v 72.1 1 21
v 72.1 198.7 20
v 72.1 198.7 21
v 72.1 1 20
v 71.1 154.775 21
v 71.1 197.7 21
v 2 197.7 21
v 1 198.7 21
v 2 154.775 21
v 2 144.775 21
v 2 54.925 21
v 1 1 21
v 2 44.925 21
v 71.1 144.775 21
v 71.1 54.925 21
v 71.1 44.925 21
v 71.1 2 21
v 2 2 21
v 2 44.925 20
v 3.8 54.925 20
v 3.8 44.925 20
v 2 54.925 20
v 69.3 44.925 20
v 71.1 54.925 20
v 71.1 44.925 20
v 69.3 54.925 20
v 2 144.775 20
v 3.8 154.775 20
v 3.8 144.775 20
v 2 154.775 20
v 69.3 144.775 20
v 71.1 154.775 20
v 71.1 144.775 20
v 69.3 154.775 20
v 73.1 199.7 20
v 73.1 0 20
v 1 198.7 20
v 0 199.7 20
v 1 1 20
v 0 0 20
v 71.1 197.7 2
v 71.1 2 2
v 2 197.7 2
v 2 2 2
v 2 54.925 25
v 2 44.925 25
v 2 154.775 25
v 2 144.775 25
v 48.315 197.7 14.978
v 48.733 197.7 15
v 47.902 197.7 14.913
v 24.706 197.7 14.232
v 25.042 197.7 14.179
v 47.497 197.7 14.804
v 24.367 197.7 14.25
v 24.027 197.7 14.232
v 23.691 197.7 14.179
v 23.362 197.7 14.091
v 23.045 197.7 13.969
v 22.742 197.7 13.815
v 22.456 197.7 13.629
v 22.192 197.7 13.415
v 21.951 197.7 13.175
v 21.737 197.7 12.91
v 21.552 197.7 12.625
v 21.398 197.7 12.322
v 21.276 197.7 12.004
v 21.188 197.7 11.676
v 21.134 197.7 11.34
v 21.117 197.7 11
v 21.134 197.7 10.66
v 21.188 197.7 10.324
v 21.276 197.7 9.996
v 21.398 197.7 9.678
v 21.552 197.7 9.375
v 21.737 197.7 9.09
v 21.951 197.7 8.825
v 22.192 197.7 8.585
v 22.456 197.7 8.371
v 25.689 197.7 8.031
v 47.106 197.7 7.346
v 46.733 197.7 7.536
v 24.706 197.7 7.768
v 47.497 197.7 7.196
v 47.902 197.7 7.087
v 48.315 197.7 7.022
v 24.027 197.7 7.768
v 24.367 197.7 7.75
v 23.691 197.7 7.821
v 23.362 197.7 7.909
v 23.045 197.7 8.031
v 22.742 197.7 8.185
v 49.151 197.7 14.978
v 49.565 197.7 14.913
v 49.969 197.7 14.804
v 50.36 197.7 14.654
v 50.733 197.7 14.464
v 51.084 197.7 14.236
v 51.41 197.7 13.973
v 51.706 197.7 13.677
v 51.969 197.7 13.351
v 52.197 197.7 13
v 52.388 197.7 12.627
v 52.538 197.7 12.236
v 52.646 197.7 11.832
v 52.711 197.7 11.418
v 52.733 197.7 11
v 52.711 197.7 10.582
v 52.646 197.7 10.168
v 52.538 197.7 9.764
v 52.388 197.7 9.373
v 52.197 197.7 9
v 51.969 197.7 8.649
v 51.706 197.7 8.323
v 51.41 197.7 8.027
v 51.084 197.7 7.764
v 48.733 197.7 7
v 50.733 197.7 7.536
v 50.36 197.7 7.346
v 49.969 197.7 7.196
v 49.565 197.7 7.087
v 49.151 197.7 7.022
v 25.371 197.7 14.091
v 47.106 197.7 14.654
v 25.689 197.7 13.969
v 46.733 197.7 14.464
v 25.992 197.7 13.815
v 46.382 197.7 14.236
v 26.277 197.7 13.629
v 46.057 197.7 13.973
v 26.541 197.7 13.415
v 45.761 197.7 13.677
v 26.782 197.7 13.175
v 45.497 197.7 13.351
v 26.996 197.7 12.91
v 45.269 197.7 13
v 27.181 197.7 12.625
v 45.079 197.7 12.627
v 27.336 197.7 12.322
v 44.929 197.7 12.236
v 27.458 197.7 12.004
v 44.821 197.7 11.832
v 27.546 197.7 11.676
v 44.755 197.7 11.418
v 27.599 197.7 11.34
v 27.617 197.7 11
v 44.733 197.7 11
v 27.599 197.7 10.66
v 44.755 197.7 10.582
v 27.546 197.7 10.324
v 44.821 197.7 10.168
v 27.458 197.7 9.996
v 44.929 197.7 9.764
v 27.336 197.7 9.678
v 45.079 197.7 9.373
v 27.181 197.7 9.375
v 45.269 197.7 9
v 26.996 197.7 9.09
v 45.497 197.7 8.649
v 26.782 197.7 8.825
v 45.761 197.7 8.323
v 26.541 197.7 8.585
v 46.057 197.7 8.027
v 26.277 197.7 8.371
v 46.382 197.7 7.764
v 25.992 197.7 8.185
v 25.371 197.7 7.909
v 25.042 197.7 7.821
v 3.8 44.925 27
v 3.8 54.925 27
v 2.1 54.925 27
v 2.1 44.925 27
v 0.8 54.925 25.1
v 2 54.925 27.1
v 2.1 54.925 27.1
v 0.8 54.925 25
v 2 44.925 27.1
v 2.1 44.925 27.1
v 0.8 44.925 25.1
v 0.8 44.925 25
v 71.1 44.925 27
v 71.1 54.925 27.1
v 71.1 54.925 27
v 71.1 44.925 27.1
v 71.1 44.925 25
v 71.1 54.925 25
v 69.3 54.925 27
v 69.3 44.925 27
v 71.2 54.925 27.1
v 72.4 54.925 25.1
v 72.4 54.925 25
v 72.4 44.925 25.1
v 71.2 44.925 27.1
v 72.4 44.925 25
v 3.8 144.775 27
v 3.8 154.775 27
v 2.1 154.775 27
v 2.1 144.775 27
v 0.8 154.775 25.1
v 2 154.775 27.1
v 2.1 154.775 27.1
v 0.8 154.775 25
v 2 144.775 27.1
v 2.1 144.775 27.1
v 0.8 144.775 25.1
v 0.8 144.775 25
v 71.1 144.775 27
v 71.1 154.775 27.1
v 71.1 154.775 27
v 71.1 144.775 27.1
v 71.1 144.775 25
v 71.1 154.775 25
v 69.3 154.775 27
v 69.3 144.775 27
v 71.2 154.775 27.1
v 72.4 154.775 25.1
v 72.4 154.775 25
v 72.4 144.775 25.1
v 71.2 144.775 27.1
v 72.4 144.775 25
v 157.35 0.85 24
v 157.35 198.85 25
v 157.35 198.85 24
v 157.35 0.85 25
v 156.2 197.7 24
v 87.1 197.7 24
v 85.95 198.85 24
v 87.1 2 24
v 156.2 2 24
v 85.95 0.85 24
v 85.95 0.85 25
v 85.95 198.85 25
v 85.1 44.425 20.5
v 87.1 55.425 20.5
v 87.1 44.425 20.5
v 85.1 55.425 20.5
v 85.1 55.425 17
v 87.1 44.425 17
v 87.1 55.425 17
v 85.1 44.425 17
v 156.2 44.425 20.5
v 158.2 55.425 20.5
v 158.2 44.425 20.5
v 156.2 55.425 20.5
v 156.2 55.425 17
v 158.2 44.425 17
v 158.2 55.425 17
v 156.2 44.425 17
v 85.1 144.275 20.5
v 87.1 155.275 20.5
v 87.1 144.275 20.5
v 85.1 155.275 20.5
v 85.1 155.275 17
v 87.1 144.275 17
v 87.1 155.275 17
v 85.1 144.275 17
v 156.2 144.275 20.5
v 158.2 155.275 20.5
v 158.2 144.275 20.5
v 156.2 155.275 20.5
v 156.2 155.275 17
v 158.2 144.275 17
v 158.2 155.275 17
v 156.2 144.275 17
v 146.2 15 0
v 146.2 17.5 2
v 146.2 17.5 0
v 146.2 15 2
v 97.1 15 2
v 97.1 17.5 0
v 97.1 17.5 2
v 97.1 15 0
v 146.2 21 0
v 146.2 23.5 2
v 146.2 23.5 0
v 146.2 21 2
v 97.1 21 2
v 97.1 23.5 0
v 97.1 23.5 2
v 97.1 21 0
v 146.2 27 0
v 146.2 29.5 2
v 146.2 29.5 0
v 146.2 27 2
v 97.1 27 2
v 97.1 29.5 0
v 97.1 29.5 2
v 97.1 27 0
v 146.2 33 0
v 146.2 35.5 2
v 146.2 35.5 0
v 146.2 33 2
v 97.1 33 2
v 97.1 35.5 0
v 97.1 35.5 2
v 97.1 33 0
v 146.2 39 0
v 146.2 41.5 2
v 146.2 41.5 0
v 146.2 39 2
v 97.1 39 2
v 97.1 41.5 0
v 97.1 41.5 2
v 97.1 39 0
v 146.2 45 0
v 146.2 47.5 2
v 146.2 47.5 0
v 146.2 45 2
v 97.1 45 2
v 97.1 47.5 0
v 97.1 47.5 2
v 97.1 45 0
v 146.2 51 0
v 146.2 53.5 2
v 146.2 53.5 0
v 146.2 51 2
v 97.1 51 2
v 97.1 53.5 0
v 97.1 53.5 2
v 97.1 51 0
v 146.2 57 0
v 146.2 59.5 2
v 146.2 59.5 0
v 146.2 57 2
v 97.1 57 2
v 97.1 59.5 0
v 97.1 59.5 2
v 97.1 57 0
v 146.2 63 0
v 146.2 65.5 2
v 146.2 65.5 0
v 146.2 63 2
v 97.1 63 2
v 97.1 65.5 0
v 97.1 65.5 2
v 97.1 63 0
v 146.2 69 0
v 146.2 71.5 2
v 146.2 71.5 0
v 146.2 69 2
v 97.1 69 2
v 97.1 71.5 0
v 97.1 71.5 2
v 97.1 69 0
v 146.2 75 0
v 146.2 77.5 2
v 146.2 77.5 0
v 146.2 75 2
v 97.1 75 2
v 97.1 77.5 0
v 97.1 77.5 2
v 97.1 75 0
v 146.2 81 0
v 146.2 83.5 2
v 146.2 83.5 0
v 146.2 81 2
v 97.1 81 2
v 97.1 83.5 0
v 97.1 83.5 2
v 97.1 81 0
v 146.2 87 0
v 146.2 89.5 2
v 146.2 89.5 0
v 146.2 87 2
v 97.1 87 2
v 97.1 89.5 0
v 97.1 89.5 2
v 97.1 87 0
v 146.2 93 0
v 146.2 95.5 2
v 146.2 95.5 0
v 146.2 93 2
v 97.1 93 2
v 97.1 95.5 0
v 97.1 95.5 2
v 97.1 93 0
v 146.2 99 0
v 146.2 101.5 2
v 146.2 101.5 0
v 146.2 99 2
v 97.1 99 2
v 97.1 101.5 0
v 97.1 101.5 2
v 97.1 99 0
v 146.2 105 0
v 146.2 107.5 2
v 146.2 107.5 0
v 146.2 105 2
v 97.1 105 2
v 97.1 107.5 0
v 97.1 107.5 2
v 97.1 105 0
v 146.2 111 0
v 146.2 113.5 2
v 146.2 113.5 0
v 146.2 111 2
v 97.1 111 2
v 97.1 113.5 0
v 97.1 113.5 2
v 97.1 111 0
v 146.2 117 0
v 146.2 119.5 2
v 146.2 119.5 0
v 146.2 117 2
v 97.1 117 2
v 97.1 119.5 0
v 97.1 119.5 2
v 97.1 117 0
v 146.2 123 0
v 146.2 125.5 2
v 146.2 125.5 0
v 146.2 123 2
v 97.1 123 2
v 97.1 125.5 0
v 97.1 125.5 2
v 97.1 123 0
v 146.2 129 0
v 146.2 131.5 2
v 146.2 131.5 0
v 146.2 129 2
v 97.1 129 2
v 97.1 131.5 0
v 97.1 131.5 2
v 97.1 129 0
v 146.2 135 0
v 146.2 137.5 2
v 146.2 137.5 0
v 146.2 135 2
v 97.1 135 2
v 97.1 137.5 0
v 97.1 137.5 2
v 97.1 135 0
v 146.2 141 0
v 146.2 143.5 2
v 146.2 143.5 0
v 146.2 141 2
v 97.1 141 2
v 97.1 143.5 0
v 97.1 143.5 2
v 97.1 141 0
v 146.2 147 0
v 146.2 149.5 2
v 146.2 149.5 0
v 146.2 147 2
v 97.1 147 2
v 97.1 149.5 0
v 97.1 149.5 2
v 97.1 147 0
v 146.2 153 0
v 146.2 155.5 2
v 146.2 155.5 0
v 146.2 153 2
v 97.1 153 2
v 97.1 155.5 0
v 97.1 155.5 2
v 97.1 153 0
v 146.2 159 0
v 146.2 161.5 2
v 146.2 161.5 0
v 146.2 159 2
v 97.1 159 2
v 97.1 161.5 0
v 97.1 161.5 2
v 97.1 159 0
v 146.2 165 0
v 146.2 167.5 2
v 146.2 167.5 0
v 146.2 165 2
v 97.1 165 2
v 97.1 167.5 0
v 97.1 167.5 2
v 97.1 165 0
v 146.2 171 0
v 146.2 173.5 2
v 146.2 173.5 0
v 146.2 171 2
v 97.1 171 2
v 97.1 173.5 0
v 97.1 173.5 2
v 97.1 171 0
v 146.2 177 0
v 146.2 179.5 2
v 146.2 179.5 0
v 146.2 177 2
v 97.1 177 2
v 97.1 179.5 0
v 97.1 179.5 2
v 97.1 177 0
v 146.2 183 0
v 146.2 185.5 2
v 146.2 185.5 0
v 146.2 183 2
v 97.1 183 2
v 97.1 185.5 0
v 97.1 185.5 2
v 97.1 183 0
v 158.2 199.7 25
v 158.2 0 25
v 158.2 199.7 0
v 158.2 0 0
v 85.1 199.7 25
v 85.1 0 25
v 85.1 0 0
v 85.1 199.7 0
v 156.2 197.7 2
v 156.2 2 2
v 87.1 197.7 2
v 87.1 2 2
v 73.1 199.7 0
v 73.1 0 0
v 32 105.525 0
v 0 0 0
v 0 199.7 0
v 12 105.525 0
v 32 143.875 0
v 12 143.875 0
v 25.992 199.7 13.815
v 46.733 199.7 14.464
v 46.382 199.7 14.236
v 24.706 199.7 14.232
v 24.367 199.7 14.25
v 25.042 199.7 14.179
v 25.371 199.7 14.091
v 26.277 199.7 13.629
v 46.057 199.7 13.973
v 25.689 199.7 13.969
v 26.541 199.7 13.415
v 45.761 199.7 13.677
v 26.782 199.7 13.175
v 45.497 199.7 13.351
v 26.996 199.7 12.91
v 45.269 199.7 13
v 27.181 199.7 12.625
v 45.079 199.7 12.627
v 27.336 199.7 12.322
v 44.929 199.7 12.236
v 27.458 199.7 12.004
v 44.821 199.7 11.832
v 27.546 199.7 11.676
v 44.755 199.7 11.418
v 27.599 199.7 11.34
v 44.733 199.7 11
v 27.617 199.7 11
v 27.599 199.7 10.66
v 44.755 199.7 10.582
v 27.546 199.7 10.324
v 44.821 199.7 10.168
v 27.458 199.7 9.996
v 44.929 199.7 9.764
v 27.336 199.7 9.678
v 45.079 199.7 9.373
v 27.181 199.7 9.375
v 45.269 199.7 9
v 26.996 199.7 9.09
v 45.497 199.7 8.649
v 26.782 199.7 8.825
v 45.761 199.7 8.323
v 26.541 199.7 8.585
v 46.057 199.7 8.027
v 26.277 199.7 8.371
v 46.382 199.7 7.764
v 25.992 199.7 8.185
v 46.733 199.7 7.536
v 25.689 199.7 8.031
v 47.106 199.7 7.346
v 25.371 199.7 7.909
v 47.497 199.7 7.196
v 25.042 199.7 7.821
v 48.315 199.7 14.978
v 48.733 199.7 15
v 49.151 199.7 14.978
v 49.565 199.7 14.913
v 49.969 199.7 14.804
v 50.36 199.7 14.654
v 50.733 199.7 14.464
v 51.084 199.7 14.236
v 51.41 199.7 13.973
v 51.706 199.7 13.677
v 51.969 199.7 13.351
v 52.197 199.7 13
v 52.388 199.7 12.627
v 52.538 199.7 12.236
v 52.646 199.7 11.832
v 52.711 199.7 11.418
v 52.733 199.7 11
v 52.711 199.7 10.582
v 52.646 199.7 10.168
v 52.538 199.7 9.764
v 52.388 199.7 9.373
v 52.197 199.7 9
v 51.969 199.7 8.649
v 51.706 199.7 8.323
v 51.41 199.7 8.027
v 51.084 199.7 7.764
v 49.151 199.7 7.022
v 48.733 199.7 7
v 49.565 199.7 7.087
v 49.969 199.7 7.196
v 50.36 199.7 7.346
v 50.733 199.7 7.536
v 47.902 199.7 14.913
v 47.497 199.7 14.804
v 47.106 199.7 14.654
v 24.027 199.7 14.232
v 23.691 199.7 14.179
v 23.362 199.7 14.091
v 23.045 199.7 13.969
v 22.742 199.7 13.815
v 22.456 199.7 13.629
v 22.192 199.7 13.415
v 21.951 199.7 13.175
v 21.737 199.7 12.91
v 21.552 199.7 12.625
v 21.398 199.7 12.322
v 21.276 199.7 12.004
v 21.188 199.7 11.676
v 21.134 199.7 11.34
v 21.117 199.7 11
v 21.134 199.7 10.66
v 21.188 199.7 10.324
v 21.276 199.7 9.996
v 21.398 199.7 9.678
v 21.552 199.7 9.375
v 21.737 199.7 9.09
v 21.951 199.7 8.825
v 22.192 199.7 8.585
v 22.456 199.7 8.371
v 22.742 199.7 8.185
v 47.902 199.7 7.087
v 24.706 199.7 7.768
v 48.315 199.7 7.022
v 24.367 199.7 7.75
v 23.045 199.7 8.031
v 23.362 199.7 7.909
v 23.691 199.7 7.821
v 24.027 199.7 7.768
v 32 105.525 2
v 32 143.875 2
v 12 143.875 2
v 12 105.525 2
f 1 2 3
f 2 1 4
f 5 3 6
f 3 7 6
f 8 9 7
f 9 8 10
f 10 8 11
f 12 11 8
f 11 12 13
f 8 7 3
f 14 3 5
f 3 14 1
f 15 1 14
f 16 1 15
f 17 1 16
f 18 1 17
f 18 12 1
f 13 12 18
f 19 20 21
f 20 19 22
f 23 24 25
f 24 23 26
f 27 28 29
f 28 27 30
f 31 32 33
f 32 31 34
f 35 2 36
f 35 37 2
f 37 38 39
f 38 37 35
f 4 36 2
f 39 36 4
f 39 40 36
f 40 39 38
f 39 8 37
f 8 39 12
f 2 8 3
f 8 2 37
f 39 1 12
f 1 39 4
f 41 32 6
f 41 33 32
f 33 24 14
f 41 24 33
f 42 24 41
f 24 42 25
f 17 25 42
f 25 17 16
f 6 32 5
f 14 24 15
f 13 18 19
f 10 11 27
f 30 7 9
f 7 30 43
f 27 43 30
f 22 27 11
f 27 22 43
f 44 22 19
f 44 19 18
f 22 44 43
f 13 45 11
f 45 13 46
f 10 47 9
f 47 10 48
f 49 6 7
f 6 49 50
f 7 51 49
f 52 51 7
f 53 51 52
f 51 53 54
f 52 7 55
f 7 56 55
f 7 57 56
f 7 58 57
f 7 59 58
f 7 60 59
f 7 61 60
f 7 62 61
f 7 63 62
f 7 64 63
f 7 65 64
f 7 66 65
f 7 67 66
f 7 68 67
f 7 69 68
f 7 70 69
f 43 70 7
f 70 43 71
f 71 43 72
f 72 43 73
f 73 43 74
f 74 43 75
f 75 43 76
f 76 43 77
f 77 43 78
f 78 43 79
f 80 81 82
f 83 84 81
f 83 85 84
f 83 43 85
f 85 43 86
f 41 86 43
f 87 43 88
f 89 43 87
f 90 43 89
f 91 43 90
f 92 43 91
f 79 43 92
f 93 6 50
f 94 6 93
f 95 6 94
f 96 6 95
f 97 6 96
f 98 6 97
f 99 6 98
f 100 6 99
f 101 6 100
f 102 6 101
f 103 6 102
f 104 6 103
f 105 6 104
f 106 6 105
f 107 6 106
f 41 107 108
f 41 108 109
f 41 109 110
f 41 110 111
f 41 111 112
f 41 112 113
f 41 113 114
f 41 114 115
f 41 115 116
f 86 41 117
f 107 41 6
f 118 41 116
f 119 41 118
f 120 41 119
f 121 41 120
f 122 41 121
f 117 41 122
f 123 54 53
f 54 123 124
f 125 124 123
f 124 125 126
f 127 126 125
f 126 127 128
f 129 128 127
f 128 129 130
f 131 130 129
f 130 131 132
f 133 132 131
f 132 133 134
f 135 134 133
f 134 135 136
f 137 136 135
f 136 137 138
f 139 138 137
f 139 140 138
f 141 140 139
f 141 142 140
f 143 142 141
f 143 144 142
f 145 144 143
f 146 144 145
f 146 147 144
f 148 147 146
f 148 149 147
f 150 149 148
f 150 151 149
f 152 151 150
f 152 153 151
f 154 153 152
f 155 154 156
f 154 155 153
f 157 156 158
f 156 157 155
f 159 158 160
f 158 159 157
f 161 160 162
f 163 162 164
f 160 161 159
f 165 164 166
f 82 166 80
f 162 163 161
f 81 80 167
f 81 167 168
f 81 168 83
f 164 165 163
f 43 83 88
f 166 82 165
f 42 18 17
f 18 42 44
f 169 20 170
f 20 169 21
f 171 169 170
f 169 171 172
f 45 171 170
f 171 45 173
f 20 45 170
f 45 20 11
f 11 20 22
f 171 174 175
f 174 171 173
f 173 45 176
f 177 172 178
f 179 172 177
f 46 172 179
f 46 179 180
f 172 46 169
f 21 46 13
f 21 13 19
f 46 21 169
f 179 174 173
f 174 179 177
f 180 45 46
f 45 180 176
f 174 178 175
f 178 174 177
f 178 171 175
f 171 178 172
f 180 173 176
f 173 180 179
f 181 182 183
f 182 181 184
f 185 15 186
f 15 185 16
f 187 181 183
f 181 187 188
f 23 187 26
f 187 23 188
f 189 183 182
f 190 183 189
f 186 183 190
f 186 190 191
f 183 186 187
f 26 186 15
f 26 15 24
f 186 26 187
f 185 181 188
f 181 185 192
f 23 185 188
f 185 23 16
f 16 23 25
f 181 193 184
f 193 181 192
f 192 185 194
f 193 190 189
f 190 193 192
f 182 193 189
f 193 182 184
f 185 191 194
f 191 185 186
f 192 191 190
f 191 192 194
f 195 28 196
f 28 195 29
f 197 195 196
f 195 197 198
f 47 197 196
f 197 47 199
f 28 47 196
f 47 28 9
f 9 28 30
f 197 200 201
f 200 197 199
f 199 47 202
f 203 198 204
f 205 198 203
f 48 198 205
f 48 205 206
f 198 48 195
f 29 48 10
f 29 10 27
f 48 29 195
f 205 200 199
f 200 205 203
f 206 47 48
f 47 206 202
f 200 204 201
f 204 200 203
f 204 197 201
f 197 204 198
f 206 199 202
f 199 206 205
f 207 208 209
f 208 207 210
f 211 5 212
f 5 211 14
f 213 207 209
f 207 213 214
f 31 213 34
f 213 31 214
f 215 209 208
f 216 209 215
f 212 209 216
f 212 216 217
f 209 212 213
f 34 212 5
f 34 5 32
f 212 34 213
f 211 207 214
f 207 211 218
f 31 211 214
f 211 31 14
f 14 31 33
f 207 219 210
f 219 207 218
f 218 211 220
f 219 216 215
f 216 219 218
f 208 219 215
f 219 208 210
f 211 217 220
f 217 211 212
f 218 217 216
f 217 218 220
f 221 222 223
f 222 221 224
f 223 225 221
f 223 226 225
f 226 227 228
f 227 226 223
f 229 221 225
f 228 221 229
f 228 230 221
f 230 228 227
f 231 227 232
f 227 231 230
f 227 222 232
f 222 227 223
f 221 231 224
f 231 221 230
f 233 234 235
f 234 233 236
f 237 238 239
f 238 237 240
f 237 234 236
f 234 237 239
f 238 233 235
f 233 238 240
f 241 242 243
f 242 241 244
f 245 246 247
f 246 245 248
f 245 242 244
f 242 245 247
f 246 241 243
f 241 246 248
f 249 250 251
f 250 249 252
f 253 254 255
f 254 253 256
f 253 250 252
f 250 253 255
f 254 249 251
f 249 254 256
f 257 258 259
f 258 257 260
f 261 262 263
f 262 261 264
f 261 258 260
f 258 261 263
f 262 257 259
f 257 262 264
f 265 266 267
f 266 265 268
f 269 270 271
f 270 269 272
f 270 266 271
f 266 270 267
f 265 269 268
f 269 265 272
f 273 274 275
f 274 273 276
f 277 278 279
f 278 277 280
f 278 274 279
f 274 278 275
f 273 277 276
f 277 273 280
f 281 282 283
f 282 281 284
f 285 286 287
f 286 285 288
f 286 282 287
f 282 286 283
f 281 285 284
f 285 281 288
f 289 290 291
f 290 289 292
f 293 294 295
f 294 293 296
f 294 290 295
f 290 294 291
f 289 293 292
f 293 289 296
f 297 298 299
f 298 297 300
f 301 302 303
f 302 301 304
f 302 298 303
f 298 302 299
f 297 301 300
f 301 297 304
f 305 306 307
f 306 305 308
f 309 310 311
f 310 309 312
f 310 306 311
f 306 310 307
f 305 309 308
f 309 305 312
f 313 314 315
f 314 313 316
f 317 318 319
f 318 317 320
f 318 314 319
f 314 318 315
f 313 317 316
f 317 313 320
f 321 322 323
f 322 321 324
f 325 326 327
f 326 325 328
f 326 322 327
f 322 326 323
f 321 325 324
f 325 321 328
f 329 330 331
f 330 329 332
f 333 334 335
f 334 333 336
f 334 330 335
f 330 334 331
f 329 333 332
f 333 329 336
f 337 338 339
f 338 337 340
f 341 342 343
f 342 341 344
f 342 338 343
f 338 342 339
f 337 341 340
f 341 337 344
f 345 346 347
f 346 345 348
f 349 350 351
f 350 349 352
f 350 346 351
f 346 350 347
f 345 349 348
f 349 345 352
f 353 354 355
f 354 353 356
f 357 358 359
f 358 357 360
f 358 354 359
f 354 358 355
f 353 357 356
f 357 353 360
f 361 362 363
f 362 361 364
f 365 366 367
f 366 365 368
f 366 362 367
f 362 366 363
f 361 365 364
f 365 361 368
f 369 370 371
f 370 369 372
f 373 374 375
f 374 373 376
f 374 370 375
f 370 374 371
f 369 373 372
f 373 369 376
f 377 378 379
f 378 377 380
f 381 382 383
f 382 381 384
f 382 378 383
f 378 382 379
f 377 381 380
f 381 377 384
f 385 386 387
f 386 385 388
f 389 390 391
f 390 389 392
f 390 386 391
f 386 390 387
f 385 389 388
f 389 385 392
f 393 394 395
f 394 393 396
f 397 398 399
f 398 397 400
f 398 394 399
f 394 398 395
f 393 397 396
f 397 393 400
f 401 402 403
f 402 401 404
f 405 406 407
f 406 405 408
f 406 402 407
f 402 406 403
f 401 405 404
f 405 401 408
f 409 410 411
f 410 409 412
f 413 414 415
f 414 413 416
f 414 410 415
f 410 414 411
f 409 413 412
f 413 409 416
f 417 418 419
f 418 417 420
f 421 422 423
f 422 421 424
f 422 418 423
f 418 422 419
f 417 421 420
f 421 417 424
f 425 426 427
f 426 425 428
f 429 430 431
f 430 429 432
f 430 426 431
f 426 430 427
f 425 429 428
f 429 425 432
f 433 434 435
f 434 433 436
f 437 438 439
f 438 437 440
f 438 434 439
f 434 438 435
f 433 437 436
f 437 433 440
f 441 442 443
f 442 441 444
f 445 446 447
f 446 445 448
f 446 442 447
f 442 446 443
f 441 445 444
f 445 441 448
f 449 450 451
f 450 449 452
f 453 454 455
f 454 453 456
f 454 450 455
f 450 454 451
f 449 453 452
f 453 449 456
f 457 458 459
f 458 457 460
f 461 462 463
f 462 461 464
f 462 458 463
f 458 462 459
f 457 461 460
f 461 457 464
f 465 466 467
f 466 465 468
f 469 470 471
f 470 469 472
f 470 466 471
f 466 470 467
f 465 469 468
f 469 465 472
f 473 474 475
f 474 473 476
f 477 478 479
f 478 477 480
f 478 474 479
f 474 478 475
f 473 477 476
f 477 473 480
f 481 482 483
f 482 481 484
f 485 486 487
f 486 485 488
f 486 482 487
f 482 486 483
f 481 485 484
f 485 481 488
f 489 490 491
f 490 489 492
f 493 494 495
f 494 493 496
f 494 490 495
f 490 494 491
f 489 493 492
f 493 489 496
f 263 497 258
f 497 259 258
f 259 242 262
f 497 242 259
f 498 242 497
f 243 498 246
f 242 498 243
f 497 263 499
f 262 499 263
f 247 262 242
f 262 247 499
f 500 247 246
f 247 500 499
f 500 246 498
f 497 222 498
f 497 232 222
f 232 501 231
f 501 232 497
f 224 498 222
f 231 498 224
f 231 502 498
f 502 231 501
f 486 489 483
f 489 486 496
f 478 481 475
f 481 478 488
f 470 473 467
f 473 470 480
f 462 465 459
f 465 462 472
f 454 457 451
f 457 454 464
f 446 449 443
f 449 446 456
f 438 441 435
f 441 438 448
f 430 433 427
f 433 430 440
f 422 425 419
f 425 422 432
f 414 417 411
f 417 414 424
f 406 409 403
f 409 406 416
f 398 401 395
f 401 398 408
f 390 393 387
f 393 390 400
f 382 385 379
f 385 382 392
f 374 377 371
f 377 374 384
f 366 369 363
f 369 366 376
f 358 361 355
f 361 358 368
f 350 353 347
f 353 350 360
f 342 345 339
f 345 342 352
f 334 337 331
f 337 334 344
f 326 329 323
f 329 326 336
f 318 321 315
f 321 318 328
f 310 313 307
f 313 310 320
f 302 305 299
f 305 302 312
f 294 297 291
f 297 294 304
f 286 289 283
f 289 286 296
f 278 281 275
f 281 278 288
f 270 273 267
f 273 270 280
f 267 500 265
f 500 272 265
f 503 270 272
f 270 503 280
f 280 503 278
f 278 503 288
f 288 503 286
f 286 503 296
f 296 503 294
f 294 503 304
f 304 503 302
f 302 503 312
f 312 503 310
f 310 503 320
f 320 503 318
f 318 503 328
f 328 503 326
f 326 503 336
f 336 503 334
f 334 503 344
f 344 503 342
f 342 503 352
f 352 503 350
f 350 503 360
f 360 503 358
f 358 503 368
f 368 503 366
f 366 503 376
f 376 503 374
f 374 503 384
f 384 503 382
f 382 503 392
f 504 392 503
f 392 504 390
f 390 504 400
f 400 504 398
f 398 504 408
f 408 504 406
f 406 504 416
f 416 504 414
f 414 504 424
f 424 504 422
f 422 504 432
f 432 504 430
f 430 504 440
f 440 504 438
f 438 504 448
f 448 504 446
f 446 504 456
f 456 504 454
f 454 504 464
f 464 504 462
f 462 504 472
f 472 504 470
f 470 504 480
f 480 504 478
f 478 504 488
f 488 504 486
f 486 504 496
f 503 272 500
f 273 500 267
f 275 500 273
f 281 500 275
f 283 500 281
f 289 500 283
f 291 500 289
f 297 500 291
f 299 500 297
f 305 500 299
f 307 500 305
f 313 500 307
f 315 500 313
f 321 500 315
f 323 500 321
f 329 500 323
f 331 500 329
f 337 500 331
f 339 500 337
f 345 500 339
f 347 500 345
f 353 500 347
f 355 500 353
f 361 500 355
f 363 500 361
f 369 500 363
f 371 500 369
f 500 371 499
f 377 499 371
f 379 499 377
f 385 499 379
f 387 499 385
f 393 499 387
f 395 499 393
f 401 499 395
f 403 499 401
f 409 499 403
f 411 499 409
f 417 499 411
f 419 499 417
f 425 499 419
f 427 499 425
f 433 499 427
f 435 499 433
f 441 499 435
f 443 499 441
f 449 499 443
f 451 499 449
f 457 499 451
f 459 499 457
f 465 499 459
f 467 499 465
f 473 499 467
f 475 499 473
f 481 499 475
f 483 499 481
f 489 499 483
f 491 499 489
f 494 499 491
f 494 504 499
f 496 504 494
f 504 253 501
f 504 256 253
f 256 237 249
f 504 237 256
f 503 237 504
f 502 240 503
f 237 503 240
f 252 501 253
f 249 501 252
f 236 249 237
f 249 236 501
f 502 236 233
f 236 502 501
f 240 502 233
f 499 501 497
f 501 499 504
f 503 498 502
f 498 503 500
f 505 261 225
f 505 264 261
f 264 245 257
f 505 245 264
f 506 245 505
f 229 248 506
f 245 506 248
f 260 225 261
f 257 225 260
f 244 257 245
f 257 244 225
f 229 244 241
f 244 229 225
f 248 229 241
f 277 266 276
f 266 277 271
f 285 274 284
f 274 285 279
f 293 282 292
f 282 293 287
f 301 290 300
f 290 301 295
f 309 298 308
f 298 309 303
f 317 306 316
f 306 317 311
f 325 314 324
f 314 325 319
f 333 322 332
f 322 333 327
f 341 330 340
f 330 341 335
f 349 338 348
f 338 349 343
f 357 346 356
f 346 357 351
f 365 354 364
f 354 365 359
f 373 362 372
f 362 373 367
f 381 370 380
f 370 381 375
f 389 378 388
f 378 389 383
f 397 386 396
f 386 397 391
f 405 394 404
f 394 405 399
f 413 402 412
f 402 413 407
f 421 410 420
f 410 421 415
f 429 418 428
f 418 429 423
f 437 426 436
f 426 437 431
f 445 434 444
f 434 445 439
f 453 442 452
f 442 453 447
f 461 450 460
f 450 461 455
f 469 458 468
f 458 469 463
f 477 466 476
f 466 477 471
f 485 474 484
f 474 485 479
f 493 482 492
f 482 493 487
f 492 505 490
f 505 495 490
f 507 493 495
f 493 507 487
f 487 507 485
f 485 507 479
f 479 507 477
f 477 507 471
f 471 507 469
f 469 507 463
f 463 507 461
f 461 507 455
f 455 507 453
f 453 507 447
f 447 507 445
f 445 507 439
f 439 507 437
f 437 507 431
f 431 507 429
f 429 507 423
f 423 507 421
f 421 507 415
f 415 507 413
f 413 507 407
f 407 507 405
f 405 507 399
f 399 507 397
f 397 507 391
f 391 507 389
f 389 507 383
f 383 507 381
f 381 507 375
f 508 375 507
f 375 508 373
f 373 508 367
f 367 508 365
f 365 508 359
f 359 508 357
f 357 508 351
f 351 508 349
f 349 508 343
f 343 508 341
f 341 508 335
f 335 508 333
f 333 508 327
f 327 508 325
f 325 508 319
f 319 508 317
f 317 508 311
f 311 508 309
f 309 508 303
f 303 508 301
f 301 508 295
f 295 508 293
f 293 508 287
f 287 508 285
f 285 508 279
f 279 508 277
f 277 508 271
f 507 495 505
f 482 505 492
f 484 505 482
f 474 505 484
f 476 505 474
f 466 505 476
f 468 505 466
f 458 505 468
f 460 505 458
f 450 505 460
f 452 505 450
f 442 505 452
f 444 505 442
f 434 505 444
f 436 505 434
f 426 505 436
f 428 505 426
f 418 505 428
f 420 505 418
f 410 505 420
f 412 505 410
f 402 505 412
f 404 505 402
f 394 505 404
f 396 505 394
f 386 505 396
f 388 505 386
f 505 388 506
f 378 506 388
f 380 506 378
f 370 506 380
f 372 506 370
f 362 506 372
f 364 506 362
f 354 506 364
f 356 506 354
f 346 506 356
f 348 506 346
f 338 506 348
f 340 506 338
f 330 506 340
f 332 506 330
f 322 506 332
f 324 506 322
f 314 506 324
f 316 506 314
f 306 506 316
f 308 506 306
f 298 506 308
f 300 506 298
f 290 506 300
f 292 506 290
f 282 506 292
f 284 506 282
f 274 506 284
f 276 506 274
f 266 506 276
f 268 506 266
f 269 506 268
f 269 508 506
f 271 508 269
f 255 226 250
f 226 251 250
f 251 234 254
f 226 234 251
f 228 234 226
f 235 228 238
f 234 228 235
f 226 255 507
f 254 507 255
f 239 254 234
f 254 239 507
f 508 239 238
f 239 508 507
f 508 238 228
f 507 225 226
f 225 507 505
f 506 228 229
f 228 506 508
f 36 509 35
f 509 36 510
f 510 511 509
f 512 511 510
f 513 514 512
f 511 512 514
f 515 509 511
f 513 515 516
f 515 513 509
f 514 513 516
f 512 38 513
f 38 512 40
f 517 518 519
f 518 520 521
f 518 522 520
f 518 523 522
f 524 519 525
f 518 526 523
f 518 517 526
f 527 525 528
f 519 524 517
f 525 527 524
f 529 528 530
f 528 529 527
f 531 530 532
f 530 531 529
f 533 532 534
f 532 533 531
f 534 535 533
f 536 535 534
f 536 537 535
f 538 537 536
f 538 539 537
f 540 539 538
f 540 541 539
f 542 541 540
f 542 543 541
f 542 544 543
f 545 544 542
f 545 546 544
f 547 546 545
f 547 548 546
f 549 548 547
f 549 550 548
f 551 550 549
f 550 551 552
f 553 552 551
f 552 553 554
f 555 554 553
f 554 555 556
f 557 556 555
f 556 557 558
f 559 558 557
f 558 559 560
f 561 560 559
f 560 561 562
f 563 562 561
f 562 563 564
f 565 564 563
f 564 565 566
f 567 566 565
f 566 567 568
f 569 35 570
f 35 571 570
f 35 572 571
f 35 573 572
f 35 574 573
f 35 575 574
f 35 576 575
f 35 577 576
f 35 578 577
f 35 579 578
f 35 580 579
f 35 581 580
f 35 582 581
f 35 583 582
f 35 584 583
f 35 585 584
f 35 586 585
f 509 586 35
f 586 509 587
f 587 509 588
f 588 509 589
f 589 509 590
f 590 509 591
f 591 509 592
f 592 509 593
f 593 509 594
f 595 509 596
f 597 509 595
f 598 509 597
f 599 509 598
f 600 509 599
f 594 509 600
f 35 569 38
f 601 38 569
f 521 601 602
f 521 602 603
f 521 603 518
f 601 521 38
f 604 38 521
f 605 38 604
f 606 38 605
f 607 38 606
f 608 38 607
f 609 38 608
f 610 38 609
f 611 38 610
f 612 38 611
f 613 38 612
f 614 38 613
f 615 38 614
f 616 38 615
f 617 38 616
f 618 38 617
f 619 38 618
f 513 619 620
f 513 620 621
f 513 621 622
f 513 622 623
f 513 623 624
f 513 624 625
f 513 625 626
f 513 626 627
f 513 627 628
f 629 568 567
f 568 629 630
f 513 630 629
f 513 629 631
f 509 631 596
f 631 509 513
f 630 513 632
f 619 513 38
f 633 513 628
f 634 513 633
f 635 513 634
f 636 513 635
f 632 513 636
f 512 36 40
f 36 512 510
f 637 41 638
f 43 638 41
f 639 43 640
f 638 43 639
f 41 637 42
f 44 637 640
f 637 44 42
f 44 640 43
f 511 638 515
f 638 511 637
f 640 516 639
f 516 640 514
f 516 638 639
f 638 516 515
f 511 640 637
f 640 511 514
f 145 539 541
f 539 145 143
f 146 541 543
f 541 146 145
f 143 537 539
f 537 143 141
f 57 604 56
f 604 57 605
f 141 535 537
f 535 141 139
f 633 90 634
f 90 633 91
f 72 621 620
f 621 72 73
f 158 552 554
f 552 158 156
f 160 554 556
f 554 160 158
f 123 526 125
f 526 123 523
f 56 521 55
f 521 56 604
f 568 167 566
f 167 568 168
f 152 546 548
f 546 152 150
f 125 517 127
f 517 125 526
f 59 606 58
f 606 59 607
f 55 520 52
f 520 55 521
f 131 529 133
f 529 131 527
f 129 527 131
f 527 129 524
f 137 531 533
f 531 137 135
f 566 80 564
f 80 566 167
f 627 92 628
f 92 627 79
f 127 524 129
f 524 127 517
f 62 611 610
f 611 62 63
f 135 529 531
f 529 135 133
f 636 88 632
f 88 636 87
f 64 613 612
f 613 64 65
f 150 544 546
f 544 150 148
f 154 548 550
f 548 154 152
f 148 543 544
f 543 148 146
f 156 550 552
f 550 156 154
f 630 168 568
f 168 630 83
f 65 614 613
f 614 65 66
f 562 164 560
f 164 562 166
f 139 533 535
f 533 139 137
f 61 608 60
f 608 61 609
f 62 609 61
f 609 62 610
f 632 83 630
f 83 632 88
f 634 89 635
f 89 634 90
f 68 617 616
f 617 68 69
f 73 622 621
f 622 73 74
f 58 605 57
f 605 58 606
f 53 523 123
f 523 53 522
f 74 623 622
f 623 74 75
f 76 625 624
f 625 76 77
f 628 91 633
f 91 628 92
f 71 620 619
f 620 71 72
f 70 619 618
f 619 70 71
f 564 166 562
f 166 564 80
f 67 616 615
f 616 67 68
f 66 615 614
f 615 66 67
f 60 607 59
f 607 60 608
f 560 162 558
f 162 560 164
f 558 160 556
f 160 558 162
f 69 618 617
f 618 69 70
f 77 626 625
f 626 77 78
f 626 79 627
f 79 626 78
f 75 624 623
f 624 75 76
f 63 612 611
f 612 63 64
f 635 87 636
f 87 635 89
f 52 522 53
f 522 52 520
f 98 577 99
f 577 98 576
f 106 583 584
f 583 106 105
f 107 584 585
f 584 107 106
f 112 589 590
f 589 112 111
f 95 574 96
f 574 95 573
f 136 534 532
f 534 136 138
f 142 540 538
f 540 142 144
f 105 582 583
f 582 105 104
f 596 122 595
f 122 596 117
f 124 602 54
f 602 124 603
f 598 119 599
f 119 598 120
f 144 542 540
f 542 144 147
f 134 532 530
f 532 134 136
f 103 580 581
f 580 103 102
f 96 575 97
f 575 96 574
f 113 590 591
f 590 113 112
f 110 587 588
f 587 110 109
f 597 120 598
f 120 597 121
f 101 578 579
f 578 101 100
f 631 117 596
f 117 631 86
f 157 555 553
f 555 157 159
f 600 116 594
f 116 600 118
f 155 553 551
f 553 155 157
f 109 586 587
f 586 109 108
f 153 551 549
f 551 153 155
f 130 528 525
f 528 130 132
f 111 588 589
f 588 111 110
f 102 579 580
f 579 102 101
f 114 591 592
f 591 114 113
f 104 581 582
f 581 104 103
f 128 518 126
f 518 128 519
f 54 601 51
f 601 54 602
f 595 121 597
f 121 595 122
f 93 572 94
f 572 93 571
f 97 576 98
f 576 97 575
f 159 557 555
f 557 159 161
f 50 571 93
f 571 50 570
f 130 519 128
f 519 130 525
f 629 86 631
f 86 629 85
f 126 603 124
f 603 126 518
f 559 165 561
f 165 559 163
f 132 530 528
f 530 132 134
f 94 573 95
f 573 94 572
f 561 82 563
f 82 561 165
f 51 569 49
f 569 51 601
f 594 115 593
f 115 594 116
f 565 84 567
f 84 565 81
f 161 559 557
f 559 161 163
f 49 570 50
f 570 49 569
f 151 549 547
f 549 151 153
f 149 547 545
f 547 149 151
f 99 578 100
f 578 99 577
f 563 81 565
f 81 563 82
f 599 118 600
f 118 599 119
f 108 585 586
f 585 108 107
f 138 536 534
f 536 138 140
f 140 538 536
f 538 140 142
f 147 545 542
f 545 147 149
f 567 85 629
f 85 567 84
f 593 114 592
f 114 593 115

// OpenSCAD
/*
  Handheld Drone Detector Enclosure - Extended (+2")
  Hardware: ESP32S2, Heltec (w/ Screen), BW16, USB Power Bank
  Mechanism: 4x Cantilever Snap Joints
*/

$fn = 60; // Smoothness for circular cutouts

// --- Printer Tolerances & Settings ---
wall = 2.0;       // Standard 2mm shell thickness
tol = 0.15;       // Clearance tolerance for the alignment lip

// --- Snap Joint Parameters ---
snap_w = 10.0;      // Width of the snap arm
snap_t = 1.8;       // Thickness of the cantilever arm
snap_l = 7.0;       // Length of the snap extending past the rim
snap_h = 1.2;       // Hook protrusion depth

// --- Internal Dimensions (mm) ---
// Battery: 136.9 x 67.1 x 15 (Updated to exact 15mm thickness)
bat_w = 67.1;
bat_h = 136.9;
bat_d = 15.0;

usb_clearance = 58.8;       // 8mm original + 50.8mm (2 inches) for cable routing
int_w = bat_w + 2;          // 69.1mm wide internal cavity
int_h = bat_h + usb_clearance; // 195.7mm high total cavity
front_depth = 18.0;         // Depth for boards (Accounts for BW16 header pins)

// back_depth is bat_d + 8 to raise bottom walls & clasp receivers 
back_depth = bat_d + 8;     

// --- External Dimensions ---
ext_w = int_w + (wall * 2);
ext_h = int_h + (wall * 2);
ext_d = front_depth + back_depth + (wall * 2);

// --- Component Coordinates ---
// Screen rotated vertically, widened by ~6.35mm (0.25"), plus an extra 2mm in height
screen_w = 20;     // Original short edge
screen_h = 38.35;  // Original long edge (30) + 6.35mm (0.25") + 2.0mm

// Anchored from the top down, left justified with a buffer for the board
screen_x = wall + 10; // Left-justified 10mm from internal wall
screen_y = ext_h - 75; 

sma_dia = 6.5;        // ESP32S2 Antenna Port
foxeer_dia = 8.0;     // BW16 Antenna Port

// --- View Selector ---
// 0 = Exploded View, 1 = Front Face Only, 2 = Back Cover Only
part = 0; 

if (part == 0) {
    front_half();
    translate([ext_w + 12, 0, 0]) back_half();
} else if (part == 1) {
    front_half();
} else if (part == 2) {
    back_half();
}

// ==========================================
//                 MODULES
// ==========================================

module hook_left() {
    // Main cantilever arm
    cube([snap_t, snap_w, snap_l]);
    // The wedge ramp and catch (facing outward to the left)
    translate([-snap_h, 0, snap_l - 2])
        hull() {
            cube([0.1, snap_w, 0.1]);                       // Bottom catching ledge
            translate([snap_h, 0, 2]) cube([0.1, snap_w, 0.1]); // Top tip (flush with arm)
            translate([snap_h, 0, 0]) cube([0.1, snap_w, 0.1]); // Base of the wedge
        }
}

module hook_right() {
    // Main cantilever arm
    translate([-snap_t, 0, 0]) cube([snap_t, snap_w, snap_l]);
    // The wedge ramp and catch (facing outward to the right)
    translate([0, 0, snap_l - 2])
        hull() {
            translate([snap_h, 0, 0]) cube([0.1, snap_w, 0.1]); // Bottom catching ledge
            translate([0, 0, 2]) cube([0.1, snap_w, 0.1]);      // Top tip (flush with arm)
            cube([0.1, snap_w, 0.1]);                           // Base of the wedge
        }
}

module front_half() {
    union() {
        difference() {
            // Main Outer Block
            cube([ext_w, ext_h, front_depth + wall]);
            
            // Hollow Internal Cavity
            translate([wall, wall, wall])
                cube([int_w, int_h, front_depth + 1]);
                
            // Heltec Screen Cutout (Vertical & Left-Justified)
            translate([screen_x, screen_y - (screen_h/2), -1])
                cube([screen_w, screen_h, wall + 2]);
                
            // Top Face Antenna Ports
            translate([ext_w/3, ext_h + 1, wall + (front_depth/2)])
                rotate([90, 0, 0])
                cylinder(d=sma_dia, h=wall+2);
                
            translate([ext_w*2/3, ext_h + 1, wall + (front_depth/2)])
                rotate([90, 0, 0])
                cylinder(d=foxeer_dia, h=wall+2);
        }
        
        // 1mm Alignment Lip (Keeps the two halves from shearing sideways)
        translate([wall/2, wall/2, front_depth + wall])
            difference() {
                cube([ext_w - wall, ext_h - wall, 1]); 
                translate([wall/2, wall/2, -1])
                    cube([ext_w - wall*2, ext_h - wall*2, 3]);
            }
            
        // 4x Cantilever Snaps
        for (y = [ext_h*0.25, ext_h*0.75]) {
            translate([wall, y - snap_w/2, front_depth + wall])
                hook_left();
            translate([ext_w - wall, y - snap_w/2, front_depth + wall])
                hook_right();
        }
    }
}

module back_half() {
    difference() {
        // Main Outer Block
        cube([ext_w, ext_h, back_depth + wall]);
        
        // Hollow Battery Cavity
        translate([wall, wall, wall])
            cube([int_w, int_h, back_depth + 1]);
            
        // Female Alignment Groove
        translate([wall/2 - tol, wall/2 - tol, back_depth + wall - 1])
            difference() {
                cube([ext_w - wall + (tol*2), ext_h - wall + (tol*2), 2]);
                translate([wall/2 + (tol*2), wall/2 + (tol*2), -1])
                    cube([ext_w - wall*2 - (tol*4), ext_h - wall*2 - (tol*4), 4]);
            }
            
        // Snap Receiver Windows (Cut fully through the outer shell)
        for (y = [ext_h*0.25, ext_h*0.75]) {
            // Left window
            translate([-1, y - (snap_w+1)/2, back_depth + wall - snap_l - 1])
                cube([wall + 2, snap_w + 1, 3.5]);
            // Right window
            translate([ext_w - wall - 1, y - (snap_w+1)/2, back_depth + wall - snap_l - 1])
                cube([wall + 2, snap_w + 1, 3.5]);
        }
            
        // Horizontal Vents (Full length of the back)
        // Spaced every 6mm, starting from 15mm up to near the top
        for (i = [0 : floor((ext_h - 30) / 6)]) {
            translate([wall + 10, 15 + (i * 6), -1])
                cube([ext_w - 20 - (wall*2), 2.5, wall + 2]);
        }
    }
}
